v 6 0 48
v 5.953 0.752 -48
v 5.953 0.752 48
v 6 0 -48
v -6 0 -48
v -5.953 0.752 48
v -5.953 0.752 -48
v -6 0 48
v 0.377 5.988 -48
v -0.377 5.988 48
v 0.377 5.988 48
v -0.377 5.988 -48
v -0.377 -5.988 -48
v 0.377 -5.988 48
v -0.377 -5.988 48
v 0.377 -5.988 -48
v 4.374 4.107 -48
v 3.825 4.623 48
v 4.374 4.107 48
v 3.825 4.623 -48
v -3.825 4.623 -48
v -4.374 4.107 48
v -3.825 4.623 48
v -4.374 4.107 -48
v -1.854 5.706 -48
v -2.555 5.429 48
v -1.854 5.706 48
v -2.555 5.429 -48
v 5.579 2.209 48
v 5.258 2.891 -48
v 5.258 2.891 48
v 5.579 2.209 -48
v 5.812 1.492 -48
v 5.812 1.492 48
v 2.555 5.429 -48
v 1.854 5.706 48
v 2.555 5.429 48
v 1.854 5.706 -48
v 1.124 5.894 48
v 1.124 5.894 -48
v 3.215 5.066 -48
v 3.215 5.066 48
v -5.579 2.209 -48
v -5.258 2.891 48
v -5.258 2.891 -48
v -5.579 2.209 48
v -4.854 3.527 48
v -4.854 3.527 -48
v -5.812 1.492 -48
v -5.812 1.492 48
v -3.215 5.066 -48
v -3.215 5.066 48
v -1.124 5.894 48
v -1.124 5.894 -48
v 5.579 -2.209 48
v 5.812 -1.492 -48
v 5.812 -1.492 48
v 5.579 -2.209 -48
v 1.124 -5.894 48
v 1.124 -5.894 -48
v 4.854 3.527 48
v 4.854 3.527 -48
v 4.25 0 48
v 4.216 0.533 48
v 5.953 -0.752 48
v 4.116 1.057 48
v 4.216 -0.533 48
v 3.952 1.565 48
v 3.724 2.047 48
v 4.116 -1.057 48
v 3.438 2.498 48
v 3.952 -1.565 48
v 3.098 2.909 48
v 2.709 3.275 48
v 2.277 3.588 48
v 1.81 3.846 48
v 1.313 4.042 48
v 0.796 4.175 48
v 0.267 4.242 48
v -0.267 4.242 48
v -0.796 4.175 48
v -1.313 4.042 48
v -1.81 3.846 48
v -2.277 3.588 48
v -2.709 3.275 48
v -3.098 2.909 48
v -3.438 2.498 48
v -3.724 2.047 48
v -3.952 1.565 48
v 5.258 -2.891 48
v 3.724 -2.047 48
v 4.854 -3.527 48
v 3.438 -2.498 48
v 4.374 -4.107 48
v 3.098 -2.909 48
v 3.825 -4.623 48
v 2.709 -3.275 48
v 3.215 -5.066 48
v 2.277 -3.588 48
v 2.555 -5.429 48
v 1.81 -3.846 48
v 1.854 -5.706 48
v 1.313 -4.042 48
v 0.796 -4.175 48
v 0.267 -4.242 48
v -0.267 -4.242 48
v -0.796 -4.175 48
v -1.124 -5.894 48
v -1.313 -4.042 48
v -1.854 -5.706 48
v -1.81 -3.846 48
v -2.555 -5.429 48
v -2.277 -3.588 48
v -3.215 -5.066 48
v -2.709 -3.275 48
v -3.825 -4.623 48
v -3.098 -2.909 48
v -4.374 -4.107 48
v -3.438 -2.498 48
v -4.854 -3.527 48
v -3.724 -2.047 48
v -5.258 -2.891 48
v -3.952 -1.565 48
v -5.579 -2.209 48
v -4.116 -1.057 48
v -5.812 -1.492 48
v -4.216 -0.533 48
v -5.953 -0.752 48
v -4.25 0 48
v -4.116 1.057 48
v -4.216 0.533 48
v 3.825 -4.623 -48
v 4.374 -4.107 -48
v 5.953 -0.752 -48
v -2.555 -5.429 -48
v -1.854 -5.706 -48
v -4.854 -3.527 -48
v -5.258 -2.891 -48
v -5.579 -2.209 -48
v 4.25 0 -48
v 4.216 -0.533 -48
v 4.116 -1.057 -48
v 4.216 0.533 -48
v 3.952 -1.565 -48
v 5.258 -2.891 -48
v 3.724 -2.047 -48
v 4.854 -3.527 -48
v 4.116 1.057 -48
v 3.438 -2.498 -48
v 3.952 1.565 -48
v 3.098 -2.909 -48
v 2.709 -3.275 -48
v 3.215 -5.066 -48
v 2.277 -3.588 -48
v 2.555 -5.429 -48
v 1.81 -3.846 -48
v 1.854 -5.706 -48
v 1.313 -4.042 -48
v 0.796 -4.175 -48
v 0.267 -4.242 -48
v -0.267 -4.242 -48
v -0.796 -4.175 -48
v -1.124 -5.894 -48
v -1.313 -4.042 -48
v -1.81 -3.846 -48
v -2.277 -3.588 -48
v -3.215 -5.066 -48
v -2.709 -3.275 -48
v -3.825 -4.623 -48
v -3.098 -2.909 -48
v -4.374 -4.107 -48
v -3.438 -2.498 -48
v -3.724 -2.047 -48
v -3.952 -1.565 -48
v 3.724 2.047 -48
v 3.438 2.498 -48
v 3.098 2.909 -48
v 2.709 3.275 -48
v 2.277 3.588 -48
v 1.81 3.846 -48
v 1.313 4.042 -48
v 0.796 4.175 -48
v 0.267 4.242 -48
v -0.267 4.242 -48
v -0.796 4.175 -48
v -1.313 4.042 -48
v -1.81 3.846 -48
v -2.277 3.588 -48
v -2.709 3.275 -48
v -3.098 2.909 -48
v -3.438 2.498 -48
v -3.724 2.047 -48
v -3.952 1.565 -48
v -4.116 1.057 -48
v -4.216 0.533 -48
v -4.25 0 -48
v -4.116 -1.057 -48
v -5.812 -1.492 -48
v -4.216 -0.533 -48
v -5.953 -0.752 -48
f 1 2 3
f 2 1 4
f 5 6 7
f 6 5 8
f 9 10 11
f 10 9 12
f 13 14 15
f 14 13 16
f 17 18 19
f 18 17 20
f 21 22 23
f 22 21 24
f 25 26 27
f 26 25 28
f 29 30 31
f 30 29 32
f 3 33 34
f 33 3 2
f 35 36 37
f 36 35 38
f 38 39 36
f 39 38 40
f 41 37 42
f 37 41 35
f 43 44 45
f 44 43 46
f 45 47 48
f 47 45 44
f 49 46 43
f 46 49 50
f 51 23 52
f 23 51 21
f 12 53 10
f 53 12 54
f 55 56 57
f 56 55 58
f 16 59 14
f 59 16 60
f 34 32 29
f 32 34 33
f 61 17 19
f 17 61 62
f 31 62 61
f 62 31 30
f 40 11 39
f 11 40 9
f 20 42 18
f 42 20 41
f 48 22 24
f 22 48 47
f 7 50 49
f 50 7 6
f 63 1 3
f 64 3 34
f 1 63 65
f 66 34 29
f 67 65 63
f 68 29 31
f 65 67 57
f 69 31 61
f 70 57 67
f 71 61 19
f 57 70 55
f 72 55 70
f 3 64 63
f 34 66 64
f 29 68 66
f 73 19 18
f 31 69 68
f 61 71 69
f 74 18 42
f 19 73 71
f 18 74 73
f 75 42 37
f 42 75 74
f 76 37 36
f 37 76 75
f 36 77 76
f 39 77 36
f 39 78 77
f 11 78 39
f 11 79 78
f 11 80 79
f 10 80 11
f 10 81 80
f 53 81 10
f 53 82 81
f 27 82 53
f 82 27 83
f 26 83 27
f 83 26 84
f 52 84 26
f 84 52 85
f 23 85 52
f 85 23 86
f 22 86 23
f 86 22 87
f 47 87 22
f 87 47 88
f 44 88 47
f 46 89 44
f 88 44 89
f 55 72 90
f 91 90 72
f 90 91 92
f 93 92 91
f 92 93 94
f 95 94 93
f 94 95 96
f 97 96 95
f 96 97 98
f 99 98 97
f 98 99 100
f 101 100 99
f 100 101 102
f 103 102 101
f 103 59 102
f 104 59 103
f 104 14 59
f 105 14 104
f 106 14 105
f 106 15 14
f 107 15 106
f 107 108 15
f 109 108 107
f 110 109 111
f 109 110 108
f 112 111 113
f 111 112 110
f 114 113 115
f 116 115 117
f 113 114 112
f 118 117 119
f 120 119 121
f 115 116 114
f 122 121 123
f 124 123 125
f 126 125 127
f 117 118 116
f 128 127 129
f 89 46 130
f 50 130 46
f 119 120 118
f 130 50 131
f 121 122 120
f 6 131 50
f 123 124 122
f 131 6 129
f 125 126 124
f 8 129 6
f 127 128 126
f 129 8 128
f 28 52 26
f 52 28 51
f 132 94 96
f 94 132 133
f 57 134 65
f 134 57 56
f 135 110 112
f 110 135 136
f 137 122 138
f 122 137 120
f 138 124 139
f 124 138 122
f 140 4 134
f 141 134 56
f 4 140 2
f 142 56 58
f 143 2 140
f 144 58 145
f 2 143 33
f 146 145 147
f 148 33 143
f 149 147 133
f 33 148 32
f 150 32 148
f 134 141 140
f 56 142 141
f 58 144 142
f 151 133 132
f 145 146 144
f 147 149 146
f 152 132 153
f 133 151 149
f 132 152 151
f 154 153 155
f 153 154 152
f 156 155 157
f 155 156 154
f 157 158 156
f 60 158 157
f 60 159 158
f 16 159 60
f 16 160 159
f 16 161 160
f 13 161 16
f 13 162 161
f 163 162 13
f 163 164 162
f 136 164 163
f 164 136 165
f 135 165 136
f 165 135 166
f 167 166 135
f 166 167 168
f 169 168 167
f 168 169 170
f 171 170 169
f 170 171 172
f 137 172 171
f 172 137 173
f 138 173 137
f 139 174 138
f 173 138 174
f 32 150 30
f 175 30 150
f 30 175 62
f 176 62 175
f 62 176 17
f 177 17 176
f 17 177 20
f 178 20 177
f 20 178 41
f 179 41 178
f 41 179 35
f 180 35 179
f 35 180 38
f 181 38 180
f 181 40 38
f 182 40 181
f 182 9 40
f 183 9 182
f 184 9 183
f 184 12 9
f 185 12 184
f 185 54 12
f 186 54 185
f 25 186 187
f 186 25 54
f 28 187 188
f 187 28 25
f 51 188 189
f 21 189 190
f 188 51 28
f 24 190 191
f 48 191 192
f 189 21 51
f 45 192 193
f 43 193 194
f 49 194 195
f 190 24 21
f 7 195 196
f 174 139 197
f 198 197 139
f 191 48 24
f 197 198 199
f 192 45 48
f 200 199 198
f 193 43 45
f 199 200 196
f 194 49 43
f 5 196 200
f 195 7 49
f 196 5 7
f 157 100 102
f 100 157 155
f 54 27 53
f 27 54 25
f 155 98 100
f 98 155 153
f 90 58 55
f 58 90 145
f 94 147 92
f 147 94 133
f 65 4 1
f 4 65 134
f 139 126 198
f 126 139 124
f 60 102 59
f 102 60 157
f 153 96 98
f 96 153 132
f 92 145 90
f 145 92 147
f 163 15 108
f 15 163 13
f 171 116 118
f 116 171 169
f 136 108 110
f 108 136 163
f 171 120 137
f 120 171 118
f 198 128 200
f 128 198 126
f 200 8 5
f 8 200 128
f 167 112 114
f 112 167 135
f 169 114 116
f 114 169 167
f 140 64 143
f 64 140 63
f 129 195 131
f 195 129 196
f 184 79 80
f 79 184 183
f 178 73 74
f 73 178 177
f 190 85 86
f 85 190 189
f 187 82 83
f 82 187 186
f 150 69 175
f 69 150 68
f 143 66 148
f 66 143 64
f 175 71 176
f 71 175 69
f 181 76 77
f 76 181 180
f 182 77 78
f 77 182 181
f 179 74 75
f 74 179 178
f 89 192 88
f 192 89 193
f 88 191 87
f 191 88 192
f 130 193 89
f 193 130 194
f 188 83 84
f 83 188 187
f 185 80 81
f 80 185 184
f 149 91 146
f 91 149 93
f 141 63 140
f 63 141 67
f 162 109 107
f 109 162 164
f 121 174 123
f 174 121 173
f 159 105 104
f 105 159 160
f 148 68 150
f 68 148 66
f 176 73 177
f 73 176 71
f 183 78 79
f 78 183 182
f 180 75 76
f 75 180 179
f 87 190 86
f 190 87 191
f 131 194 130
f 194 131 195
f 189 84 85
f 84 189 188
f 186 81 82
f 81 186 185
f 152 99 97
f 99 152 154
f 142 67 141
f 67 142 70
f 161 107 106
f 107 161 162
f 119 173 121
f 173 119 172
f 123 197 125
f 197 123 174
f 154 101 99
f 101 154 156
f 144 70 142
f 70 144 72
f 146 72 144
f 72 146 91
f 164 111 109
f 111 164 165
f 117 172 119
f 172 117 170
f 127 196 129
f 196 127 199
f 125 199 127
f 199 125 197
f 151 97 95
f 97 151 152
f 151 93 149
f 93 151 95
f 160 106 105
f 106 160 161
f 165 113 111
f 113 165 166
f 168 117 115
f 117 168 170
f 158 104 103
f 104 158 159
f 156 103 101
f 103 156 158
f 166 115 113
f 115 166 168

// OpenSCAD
$fn = 50;


difference() {
	union() {
		translate(v = [0, 0, -48.0000000000]) {
			cylinder(h = 96, r = 6.0000000000);
		}
	}
	union() {
		translate(v = [0, 0, -100.0000000000]) {
			cylinder(h = 200, r = 4.2500000000);
		}
	}
}
